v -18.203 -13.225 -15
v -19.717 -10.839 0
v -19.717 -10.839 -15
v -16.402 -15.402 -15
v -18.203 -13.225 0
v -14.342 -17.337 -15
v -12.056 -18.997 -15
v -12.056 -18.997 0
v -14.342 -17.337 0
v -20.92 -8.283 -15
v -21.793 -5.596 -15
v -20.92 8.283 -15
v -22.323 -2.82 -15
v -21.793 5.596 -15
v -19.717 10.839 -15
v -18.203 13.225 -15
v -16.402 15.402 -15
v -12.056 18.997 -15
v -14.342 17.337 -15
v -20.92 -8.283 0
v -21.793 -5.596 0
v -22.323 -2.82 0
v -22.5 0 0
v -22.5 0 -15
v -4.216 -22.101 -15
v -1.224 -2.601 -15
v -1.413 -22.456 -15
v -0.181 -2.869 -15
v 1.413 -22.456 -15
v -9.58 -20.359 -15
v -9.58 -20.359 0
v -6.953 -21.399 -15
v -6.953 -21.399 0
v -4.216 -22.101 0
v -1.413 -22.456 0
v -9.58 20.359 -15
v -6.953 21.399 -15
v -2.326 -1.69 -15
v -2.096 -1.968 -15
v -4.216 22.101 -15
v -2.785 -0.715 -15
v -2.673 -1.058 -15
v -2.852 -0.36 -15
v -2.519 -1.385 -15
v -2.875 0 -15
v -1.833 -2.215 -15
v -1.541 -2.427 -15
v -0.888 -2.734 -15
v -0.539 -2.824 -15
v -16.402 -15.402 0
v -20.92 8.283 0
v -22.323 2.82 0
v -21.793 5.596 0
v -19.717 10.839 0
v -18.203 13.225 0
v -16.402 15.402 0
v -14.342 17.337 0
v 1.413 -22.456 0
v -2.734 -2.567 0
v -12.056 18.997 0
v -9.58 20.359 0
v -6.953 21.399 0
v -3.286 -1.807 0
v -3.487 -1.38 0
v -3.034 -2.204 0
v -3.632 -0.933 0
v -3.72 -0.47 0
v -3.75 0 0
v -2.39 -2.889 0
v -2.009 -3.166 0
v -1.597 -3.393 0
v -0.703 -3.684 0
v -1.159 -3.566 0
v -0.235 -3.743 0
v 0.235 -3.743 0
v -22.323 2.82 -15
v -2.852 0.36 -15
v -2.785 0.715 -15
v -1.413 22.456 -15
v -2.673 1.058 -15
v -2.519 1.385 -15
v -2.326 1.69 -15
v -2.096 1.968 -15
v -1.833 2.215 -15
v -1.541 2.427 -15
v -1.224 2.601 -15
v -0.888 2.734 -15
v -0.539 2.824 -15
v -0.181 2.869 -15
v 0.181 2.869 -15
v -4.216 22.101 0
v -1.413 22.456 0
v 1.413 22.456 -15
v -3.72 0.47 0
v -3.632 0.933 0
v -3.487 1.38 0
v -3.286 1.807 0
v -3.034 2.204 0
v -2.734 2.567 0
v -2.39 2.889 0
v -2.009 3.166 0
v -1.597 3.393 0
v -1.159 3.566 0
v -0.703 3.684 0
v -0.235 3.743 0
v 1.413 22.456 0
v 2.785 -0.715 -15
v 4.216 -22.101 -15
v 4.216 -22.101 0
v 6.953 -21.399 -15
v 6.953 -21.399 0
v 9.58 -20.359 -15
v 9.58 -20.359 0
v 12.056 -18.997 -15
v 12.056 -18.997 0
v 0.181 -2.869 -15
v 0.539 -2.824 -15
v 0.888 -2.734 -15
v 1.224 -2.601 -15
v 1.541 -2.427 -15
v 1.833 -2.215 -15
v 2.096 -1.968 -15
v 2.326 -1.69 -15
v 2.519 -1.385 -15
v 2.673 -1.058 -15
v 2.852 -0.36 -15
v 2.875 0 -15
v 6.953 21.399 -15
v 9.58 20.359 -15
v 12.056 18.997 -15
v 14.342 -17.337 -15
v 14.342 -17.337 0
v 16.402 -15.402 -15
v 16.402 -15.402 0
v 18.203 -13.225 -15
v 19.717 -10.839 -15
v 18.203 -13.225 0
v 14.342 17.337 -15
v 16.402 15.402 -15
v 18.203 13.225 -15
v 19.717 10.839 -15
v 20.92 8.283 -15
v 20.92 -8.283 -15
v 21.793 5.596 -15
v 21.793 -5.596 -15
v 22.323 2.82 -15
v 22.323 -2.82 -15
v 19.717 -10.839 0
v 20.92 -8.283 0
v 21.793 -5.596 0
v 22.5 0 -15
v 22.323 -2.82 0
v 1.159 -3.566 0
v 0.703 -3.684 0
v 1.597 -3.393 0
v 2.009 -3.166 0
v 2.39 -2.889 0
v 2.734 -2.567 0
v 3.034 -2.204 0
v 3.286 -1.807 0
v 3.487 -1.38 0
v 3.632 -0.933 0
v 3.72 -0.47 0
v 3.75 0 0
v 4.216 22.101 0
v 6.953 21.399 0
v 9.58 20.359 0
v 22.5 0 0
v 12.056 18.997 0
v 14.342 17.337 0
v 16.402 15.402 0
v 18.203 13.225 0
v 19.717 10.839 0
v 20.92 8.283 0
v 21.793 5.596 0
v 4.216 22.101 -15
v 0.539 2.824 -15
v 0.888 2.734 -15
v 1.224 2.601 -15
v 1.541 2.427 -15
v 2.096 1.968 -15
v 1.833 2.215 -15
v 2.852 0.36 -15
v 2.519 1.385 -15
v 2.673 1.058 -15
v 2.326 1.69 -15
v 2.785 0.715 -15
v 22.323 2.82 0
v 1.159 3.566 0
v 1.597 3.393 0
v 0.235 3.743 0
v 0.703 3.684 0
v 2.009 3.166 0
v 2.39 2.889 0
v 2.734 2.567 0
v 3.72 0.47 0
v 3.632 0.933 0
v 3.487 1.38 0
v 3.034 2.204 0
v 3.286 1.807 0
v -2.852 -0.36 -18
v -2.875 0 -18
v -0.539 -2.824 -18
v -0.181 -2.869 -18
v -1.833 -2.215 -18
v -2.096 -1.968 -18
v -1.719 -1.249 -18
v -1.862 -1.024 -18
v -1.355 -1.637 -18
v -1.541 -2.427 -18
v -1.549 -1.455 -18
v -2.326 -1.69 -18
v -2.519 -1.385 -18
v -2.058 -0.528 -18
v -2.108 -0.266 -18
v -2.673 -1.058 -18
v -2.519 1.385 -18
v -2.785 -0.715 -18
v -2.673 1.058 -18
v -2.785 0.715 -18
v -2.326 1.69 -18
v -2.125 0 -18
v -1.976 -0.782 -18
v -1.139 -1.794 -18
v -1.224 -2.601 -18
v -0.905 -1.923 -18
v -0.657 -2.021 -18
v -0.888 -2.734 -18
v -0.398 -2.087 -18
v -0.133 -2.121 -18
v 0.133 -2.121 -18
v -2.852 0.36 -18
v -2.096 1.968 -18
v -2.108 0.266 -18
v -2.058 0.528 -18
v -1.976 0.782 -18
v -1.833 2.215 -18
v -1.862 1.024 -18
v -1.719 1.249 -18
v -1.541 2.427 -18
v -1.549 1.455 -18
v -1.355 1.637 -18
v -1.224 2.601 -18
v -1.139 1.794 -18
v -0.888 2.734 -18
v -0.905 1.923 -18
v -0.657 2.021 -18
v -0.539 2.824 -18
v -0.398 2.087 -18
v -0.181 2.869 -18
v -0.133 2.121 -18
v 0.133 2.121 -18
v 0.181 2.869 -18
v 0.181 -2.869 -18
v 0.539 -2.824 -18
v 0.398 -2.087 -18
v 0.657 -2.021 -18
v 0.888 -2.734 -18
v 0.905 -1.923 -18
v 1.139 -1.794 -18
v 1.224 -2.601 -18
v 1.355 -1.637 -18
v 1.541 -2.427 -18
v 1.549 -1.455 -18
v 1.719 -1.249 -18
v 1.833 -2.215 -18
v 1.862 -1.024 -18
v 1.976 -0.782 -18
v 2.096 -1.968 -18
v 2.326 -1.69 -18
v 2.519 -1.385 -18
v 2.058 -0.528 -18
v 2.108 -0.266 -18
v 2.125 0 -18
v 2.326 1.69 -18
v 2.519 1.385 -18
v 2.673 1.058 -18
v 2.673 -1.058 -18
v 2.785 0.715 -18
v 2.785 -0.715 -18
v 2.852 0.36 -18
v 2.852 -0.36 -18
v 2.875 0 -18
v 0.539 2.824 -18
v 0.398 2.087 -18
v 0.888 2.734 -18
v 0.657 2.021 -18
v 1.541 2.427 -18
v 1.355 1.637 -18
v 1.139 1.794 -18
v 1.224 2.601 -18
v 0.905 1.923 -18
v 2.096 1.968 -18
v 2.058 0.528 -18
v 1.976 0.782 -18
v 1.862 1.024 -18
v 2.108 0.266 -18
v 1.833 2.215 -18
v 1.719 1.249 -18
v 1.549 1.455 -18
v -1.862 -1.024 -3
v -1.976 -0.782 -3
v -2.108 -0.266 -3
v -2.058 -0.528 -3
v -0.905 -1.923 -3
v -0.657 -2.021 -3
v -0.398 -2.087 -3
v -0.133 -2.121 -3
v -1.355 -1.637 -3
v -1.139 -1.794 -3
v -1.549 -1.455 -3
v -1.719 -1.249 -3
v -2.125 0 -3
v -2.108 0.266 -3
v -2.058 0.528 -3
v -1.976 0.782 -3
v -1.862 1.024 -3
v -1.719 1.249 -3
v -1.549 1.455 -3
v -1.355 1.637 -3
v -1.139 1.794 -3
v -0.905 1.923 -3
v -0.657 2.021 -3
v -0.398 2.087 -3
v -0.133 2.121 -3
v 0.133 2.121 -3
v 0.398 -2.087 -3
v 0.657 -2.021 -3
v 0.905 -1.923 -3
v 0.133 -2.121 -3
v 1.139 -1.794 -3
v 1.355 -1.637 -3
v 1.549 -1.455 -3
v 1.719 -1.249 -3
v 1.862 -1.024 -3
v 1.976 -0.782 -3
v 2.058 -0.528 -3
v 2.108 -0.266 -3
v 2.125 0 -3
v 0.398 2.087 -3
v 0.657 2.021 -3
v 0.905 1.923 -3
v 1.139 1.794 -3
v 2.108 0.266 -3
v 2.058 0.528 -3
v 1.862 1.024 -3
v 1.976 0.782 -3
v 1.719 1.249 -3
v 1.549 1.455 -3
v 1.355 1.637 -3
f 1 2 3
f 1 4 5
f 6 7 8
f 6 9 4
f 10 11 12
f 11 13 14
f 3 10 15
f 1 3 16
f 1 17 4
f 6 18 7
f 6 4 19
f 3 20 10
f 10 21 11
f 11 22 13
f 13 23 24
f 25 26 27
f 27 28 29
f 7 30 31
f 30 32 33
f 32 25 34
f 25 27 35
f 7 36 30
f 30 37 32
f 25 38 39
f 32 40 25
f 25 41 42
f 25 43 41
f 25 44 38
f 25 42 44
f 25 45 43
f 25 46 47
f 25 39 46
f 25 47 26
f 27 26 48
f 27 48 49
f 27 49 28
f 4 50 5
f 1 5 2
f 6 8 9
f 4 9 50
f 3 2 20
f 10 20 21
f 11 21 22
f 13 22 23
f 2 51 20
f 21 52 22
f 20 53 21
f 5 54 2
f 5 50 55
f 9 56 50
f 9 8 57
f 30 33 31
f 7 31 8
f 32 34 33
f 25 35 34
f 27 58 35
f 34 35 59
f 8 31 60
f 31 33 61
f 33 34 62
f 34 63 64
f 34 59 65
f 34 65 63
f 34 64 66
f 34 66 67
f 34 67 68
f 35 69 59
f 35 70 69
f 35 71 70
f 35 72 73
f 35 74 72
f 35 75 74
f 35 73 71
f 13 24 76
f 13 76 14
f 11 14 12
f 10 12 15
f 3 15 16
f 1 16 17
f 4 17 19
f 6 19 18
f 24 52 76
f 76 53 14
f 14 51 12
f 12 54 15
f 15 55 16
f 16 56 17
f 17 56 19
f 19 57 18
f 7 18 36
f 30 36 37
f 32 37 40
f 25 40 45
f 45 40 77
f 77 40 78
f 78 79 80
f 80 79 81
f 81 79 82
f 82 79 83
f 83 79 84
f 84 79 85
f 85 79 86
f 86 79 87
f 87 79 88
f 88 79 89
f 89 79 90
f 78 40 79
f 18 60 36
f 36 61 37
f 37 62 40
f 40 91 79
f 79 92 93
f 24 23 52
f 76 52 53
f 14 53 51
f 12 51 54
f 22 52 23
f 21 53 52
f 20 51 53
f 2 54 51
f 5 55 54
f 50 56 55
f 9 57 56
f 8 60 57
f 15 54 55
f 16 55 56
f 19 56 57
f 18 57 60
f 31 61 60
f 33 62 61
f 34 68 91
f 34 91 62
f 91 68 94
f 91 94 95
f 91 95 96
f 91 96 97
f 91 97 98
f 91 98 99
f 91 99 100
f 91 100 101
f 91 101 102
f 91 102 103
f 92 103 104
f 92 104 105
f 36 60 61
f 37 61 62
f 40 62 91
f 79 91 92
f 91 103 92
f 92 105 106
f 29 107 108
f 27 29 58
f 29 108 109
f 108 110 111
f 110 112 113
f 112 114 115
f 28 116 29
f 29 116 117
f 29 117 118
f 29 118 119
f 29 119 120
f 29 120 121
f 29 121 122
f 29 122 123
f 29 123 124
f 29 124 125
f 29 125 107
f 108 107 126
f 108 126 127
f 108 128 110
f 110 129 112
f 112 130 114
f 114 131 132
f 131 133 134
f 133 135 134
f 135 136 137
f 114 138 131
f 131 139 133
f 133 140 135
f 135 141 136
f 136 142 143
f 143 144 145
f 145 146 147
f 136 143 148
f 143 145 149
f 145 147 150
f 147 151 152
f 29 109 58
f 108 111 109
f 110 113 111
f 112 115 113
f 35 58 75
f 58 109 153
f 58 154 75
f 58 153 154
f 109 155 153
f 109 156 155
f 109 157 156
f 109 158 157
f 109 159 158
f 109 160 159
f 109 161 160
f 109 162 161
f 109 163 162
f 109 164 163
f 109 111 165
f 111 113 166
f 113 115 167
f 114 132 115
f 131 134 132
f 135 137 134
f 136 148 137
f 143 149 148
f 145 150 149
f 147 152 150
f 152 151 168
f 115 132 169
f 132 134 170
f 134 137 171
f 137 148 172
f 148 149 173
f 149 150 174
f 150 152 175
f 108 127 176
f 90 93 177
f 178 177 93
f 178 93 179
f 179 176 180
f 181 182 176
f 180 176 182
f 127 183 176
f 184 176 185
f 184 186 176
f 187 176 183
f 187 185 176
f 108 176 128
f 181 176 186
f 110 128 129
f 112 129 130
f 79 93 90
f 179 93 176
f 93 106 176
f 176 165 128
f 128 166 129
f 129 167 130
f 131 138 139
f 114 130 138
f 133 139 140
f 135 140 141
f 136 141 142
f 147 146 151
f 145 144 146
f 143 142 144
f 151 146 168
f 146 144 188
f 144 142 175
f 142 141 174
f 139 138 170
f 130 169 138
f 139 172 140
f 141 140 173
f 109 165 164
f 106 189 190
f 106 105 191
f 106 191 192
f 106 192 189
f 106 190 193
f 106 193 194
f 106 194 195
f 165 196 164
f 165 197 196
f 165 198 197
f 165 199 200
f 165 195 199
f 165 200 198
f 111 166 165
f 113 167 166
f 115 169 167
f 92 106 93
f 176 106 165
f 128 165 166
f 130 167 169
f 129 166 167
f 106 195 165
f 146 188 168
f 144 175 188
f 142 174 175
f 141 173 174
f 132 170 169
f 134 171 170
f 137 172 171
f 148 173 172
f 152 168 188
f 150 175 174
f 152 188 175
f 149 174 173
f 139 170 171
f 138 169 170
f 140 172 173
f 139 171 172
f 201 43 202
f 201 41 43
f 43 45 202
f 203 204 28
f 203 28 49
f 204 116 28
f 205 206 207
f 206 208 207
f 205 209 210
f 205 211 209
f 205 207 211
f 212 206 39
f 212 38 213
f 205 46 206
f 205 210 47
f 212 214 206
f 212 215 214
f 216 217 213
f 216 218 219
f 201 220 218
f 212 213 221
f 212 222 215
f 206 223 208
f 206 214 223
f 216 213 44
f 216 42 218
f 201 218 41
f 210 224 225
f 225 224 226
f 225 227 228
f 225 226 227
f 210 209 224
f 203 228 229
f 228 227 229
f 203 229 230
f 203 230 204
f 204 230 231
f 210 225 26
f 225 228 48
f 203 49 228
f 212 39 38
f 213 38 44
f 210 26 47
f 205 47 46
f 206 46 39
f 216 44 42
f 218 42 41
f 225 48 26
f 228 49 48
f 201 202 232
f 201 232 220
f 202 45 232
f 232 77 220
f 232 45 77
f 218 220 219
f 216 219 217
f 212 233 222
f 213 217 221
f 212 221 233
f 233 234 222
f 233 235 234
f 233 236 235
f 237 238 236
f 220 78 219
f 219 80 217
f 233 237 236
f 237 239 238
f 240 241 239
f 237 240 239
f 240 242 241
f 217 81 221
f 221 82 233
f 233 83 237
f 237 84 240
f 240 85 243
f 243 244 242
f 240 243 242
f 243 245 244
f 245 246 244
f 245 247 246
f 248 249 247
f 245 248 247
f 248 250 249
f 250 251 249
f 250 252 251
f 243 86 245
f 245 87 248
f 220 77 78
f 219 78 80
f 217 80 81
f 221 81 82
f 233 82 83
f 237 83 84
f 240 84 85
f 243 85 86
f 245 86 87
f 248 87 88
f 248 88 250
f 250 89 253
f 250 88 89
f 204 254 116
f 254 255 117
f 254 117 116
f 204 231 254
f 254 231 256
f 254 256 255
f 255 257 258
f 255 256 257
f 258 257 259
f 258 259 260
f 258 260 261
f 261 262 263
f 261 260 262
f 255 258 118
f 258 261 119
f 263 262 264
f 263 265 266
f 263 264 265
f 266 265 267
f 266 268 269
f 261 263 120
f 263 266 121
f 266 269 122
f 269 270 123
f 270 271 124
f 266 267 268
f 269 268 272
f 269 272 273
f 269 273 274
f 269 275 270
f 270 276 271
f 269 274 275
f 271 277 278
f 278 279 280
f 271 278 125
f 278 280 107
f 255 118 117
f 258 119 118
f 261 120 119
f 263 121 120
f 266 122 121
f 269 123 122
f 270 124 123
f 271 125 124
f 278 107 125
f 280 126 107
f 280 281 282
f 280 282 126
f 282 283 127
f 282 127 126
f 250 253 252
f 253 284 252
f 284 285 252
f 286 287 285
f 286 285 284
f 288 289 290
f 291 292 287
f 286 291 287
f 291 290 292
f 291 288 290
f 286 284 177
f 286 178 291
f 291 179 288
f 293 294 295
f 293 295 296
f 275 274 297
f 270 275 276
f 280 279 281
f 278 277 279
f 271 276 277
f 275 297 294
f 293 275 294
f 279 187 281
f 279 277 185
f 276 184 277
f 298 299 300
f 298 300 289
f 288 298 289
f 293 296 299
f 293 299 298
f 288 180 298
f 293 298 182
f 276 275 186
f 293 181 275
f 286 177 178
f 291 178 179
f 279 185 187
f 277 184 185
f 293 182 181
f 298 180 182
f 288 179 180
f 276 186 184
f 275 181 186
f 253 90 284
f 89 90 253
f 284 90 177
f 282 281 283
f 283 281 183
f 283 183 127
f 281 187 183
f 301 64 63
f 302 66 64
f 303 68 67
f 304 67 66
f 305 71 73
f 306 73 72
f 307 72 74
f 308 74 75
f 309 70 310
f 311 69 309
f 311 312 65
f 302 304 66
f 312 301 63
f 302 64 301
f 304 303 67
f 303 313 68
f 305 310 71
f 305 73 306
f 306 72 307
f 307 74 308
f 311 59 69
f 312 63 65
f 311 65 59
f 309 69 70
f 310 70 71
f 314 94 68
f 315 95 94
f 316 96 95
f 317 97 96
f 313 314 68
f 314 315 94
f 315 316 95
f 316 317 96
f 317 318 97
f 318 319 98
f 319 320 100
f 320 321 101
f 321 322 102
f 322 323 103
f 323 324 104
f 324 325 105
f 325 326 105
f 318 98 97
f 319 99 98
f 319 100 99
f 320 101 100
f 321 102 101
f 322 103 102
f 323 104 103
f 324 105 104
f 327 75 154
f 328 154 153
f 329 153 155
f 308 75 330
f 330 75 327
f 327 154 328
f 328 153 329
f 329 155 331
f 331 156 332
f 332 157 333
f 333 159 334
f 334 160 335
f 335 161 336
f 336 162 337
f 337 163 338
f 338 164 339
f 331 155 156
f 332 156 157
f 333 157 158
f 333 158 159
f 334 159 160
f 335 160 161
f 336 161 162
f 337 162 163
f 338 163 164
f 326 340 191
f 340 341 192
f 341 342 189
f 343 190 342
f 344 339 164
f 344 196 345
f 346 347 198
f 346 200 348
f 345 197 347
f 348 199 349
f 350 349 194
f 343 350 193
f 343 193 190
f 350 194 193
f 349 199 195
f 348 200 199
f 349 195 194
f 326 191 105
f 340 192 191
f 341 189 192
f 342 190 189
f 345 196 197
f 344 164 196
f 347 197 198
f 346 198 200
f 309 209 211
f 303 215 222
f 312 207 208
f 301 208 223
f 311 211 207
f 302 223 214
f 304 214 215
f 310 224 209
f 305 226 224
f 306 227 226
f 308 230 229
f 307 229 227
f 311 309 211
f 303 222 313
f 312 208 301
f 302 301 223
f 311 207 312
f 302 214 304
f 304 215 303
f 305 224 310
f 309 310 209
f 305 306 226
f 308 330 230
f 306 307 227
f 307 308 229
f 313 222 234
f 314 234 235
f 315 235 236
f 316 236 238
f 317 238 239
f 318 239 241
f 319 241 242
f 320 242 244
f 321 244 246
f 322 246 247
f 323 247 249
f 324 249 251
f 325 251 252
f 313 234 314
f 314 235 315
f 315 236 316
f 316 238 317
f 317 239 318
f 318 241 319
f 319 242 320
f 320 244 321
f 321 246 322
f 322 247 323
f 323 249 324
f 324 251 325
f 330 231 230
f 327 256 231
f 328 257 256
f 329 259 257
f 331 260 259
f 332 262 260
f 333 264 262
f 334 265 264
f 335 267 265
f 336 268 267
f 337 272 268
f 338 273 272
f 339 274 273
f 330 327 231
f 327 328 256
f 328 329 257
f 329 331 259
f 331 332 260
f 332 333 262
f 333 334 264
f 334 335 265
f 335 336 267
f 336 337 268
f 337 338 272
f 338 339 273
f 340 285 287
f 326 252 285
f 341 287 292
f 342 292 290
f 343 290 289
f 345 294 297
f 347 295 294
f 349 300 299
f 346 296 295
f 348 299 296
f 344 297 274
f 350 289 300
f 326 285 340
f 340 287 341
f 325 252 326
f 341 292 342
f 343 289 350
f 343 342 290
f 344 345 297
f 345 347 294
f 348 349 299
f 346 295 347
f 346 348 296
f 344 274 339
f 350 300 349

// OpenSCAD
$fn = 50;

difference() {
	union() {
		translate(v = [0, 0, -15.0]) {
			cylinder(h = 15, r = 22.5);
		}
		#translate(v = [0, 0, -18.0]) {
			cylinder(h = 18, r = 2.875);
		}
	}
	union() {
		translate(v = [0, 0, 0]) {
			rotate(a = [0, 0, 0]) {
				difference() {
					union() {
						translate(v = [0, 0, -18.0]) {
							cylinder(h = 18, r = 2.0);
						}
						translate(v = [0, 0, -3]) {
							cylinder(h = 3, r1 = 2.125, r2 = 3.75);
						}
						translate(v = [0, 0, -18.0]) {
							cylinder(h = 18, r = 2.125);
						}
						translate(v = [0, 0, -18.0]) {
							cylinder(h = 18, r = 2.0);
						}
					}
					union();
				}
			}
		}
	}
}
